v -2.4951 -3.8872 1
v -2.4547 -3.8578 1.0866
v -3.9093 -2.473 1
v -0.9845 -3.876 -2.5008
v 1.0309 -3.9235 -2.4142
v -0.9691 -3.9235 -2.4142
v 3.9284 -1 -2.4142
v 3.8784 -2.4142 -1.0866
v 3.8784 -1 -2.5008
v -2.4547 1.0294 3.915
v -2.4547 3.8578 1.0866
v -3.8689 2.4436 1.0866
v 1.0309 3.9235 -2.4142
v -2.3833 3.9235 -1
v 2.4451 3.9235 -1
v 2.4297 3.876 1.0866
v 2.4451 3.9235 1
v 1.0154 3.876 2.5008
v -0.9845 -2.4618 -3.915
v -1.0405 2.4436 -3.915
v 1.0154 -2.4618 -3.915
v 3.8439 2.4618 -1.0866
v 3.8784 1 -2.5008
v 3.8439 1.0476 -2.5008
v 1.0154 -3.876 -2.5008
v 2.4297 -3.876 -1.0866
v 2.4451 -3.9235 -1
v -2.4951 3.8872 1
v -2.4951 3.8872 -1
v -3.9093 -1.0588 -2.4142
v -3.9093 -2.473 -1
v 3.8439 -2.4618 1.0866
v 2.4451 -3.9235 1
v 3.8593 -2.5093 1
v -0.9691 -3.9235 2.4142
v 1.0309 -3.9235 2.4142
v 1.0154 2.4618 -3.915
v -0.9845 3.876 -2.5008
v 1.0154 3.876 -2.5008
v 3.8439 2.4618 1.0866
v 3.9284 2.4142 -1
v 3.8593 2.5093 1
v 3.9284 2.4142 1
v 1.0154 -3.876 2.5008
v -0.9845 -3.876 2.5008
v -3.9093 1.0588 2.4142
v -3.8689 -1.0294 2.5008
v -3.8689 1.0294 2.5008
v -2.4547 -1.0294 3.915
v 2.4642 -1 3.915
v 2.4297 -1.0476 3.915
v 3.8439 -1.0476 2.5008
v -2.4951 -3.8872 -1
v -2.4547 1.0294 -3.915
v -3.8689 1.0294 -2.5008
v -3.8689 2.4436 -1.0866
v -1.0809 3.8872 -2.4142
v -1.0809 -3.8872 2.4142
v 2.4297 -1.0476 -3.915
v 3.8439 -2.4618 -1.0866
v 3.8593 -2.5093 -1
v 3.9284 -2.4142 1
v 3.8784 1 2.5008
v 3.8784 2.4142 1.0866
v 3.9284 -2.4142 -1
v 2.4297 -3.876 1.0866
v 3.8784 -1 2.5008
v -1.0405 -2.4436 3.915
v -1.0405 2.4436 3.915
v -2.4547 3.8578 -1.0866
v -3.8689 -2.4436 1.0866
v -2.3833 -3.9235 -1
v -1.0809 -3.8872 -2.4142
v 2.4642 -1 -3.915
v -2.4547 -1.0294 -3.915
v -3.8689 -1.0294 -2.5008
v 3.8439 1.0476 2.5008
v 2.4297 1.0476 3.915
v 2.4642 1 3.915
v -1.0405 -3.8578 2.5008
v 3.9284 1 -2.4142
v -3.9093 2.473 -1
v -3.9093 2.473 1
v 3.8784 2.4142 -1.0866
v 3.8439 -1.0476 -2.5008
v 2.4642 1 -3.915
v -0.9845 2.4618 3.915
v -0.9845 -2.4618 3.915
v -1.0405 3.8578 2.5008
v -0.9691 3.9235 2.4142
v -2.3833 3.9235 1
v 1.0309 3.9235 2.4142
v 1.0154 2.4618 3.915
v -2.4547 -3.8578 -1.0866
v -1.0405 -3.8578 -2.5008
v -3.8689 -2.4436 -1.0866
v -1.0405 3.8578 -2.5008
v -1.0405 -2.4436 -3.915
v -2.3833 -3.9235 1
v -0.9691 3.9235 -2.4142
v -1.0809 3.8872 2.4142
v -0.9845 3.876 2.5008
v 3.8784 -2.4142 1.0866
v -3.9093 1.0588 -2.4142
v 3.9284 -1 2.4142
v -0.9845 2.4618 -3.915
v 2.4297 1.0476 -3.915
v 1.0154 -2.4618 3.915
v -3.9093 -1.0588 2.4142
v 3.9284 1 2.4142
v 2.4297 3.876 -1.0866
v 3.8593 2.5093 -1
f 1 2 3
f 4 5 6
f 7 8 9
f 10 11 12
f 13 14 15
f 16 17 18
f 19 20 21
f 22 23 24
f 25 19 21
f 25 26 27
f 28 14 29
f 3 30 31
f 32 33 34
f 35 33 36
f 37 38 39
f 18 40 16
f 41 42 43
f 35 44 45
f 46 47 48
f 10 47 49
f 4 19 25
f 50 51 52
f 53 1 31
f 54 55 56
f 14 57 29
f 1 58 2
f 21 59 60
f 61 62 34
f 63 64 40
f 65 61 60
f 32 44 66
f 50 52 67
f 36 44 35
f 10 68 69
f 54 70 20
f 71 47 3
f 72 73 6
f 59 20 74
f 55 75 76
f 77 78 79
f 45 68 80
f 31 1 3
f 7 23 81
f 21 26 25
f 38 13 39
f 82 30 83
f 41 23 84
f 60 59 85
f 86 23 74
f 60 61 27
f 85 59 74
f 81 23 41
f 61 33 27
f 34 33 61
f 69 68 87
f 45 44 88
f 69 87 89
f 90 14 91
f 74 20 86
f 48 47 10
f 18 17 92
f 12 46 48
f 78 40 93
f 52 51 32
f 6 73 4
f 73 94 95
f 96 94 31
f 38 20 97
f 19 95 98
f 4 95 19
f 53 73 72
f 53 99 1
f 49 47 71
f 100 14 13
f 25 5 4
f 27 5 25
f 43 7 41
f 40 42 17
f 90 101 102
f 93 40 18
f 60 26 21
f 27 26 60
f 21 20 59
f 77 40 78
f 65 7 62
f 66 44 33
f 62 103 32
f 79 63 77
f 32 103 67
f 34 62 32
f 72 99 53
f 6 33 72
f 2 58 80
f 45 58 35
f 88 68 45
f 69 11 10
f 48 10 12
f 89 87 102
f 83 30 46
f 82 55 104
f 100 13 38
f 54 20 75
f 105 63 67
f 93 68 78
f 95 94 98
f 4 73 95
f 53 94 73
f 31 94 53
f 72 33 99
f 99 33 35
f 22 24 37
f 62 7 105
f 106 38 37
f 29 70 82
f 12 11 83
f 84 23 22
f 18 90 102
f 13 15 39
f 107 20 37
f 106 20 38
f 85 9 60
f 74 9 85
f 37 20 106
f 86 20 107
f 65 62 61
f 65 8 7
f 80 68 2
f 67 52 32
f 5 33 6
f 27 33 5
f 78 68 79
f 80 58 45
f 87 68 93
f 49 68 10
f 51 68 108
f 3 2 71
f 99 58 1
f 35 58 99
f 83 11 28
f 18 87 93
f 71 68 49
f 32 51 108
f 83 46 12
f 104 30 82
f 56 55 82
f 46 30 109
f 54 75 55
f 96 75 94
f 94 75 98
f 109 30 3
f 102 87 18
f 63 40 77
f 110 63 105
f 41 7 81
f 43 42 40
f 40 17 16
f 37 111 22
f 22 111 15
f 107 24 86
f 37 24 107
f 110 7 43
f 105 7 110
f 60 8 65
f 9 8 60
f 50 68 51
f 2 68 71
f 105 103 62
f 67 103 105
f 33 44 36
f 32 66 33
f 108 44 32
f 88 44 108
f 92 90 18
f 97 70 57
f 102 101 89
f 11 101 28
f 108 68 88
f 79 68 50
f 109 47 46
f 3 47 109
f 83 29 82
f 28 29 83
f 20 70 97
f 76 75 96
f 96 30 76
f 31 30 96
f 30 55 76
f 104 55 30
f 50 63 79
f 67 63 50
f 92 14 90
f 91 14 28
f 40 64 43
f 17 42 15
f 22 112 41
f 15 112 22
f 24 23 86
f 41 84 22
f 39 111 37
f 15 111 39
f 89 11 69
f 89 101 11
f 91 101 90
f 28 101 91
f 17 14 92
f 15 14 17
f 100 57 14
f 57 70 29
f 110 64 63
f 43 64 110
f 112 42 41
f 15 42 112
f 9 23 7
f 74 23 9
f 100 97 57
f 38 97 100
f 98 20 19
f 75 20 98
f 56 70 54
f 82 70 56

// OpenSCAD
phi = (1 + sqrt(5))/2;
t = (1 + pow( (19+3*sqrt(33)), (1/3) ) + pow( (19-3*sqrt(33)), (1/3)) )/ 3;
/*
c1 = sqrt(
    (1/12)*(
        4 - pow(17 + 3*sqrt(33), 1/3 ) - pow(17 - 3*sqrt(33), 1/3 )
    )
);
c2 = sqrt(
    (1/12)*(
        2 + pow(17 + 3*sqrt(33), 1/3 ) + pow(17 - 3*sqrt(33), 1/3 )
    )
);
c3 = sqrt(
    (1/12)*(
        4 + pow(199 + 3*sqrt(33), 1/3 ) + pow(199 - 3*sqrt(33), 1/3 )
    )
);
*/

c1 = 0.3377539738137523;
c2 = 0.6212264105565853;
c3 = 1.1426135089259621;

points = [
    
    [1, 2.414213562373095, 3.8284271247461903],
    [1, 3.8284271247461903, 2.414213562373095],
    [2.414213562373095, 1, 3.8284271247461903],
    [2.414213562373095, 3.8284271247461903, 1],
    [3.8284271247461903, 1, 2.414213562373095],
    [3.8284271247461903, 2.414213562373095, 1],
    [1, 2.414213562373095, -3.8284271247461903],
    [1, -3.8284271247461903, 2.414213562373095],
    [2.414213562373095, 1, -3.8284271247461903],
    [2.414213562373095, -3.8284271247461903, 1],
    [-3.8284271247461903, 1, 2.414213562373095],
    [-3.8284271247461903, 2.414213562373095, 1],
    [1, -2.414213562373095, 3.8284271247461903],
    [1, 3.8284271247461903, -2.414213562373095],
    [-2.414213562373095, 1, 3.8284271247461903],
    [-2.414213562373095, 3.8284271247461903, 1],
    [3.8284271247461903, 1, -2.414213562373095],
    [3.8284271247461903, -2.414213562373095, 1],
    [1, -2.414213562373095, -3.8284271247461903],
    [1, -3.8284271247461903, -2.414213562373095],
    [-2.414213562373095, 1, -3.8284271247461903],
    [-2.414213562373095, -3.8284271247461903, 1],
    [-3.8284271247461903, 1, -2.414213562373095],
    [-3.8284271247461903, -2.414213562373095, 1],
    [-1, 2.414213562373095, 3.8284271247461903],
    [-1, 3.8284271247461903, 2.414213562373095],
    [2.414213562373095, -1, 3.8284271247461903],
    [2.414213562373095, 3.8284271247461903, -1],
    [3.8284271247461903, -1, 2.414213562373095],
    [3.8284271247461903, 2.414213562373095, -1],
    [-1, 2.414213562373095, -3.8284271247461903],
    [-1, -3.8284271247461903, 2.414213562373095],
    [2.414213562373095, -1, -3.8284271247461903],
    [2.414213562373095, -3.8284271247461903, -1],
    [-3.8284271247461903, -1, 2.414213562373095],
    [-3.8284271247461903, 2.414213562373095, -1],
    [-1, -2.414213562373095, 3.8284271247461903],
    [-1, 3.8284271247461903, -2.414213562373095],
    [-2.414213562373095, -1, 3.8284271247461903],
    [-2.414213562373095, 3.8284271247461903, -1],
    [3.8284271247461903, -1, -2.414213562373095],
    [3.8284271247461903, -2.414213562373095, -1],
    [-1, -2.414213562373095, -3.8284271247461903],
    [-1, -3.8284271247461903, -2.414213562373095],
    [-2.414213562373095, -1, -3.8284271247461903],
    [-2.414213562373095, -3.8284271247461903, -1],
    [-3.8284271247461903, -1, -2.414213562373095],
    [-3.8284271247461903, -2.414213562373095, -1],

];

hull() {
    for (point = points) {
        translate( point ) sphere(0.1);
    }
}
